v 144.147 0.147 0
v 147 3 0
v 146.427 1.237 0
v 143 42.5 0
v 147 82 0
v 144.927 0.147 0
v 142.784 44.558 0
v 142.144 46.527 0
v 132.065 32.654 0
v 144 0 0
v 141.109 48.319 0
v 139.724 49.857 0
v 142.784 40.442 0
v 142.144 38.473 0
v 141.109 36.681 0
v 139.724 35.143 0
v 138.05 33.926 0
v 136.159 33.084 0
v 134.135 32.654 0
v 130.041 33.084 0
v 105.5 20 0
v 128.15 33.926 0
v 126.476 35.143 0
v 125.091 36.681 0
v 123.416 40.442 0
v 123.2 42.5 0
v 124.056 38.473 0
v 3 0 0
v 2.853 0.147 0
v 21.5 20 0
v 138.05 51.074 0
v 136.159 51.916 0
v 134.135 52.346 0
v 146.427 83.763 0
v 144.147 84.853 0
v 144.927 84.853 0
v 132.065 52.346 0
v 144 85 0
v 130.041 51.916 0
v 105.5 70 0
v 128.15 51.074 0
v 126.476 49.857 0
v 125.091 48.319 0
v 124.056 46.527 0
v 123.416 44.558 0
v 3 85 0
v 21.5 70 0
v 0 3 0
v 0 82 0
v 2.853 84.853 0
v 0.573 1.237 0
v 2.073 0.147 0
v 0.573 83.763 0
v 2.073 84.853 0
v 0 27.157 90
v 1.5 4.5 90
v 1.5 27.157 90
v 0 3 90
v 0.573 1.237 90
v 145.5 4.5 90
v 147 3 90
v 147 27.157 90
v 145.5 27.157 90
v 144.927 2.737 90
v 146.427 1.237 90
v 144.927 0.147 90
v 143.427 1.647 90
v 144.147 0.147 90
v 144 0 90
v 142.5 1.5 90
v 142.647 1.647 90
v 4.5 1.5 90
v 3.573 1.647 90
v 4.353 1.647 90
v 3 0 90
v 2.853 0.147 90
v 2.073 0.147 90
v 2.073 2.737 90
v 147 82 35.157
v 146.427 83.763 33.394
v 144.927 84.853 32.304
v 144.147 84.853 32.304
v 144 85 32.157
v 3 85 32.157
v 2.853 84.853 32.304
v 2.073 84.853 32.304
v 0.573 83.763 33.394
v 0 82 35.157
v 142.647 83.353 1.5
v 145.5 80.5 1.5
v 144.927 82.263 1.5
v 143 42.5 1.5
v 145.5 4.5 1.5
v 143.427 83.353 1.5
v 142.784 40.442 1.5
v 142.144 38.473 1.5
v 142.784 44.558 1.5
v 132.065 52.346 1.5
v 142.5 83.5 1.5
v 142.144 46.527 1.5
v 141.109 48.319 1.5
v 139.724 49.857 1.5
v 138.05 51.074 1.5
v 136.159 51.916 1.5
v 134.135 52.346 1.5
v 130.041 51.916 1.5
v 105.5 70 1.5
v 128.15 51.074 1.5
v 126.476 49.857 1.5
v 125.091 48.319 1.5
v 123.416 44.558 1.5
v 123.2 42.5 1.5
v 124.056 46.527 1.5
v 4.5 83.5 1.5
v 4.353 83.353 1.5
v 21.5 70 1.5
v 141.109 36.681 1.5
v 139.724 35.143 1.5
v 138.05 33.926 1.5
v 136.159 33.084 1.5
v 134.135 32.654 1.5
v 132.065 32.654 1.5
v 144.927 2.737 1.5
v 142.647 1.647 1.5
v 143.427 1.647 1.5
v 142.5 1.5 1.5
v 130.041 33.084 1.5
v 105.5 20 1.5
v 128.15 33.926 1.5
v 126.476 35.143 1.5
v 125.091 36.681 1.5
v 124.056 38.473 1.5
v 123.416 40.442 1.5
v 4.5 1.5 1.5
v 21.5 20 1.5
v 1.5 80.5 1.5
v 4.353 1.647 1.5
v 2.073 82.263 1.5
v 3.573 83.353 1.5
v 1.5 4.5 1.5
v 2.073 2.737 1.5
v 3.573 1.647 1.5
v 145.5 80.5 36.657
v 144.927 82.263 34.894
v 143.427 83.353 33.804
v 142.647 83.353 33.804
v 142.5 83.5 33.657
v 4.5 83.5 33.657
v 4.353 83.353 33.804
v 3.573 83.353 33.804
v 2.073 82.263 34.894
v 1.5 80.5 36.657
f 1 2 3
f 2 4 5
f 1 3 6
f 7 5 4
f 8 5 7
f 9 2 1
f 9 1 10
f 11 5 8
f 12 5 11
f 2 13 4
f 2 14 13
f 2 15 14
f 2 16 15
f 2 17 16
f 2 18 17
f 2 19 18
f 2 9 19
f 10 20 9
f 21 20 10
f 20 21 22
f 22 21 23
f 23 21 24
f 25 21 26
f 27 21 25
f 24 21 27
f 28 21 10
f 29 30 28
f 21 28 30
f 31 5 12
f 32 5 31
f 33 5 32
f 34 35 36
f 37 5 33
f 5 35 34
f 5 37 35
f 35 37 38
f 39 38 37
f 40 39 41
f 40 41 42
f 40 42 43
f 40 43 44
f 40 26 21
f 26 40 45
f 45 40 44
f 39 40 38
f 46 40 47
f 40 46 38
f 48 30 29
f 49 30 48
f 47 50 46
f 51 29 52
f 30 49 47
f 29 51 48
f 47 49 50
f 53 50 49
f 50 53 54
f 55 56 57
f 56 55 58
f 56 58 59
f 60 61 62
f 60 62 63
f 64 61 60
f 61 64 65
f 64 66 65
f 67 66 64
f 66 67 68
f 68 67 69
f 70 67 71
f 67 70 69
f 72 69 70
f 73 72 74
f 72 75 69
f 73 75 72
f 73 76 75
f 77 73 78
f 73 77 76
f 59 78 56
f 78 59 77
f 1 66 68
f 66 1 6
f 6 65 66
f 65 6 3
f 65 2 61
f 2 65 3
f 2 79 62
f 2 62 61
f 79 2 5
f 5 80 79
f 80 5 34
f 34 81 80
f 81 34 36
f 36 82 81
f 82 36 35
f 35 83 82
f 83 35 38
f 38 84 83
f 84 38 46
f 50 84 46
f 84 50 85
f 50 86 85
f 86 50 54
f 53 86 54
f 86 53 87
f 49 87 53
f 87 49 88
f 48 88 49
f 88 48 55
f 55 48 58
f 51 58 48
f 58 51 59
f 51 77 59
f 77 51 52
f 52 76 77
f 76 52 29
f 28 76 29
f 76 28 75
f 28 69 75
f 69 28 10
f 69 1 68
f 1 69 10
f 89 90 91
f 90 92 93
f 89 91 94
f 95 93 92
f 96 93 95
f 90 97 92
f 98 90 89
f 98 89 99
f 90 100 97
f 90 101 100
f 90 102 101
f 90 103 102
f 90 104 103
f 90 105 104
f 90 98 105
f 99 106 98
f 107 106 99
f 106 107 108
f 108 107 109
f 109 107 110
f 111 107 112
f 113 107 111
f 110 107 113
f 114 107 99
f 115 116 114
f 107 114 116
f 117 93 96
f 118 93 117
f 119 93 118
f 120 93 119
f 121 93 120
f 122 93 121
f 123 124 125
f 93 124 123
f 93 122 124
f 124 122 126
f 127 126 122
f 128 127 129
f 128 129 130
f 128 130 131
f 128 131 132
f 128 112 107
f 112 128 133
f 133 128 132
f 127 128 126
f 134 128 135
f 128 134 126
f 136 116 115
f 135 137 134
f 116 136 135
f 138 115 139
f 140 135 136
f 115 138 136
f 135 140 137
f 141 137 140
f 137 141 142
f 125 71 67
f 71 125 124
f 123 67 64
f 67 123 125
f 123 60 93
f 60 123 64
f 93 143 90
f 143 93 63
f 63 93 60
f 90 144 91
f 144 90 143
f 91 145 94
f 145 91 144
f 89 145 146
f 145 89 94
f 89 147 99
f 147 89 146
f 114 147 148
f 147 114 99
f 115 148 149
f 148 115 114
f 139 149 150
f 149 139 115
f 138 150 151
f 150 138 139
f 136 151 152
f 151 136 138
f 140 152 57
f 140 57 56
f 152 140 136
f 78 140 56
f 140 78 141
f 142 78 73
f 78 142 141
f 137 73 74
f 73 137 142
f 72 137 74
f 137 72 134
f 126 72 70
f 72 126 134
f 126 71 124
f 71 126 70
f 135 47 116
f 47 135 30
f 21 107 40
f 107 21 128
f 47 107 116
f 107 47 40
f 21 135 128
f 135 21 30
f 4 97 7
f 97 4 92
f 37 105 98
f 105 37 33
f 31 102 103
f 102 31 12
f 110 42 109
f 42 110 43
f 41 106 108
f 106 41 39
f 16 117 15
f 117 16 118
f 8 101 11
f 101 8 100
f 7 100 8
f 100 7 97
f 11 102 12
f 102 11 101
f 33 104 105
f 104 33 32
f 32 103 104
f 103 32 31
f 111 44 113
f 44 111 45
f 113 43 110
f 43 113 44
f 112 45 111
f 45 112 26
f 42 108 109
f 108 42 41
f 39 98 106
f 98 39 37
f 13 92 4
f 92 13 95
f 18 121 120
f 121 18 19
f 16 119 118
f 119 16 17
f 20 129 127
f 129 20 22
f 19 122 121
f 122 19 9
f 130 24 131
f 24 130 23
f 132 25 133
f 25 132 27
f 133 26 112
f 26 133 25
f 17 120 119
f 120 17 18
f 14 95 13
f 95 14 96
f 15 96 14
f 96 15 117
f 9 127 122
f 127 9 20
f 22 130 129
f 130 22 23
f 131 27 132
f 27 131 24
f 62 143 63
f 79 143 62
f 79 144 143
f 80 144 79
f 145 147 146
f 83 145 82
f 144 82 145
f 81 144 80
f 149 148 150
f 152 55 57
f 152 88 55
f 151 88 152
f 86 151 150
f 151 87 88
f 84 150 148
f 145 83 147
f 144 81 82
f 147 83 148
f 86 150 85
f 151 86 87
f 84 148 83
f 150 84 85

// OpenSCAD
BaseWidth = 147;
BaseDepth = 85;
BaseHeight = 90;
CornerRadius = 3;
WallThickness = 1.5;
LCDScreenWidth=84;
LCDScreenHeight=50;
LCDScreenX=21.5;
LCDScreenY=20;
SmokeSensorRadius = 9.9;
SmokeSensorX=BaseWidth-WallThickness*2-1-SmokeSensorRadius;
SmokeSensorY=BaseDepth/2;
LEDRadius=1.6;
LEDX=SmokeSensorX;
LEDY=SmokeSensorY+35;

module RoundedRectangle($Width=BaseWidth, $Depth=BaseDepth, $Radius=CornerRadius) 
{
    polygon(points = [[$Radius, 0], [$Width-$Radius, 0],[$Width, $Radius], [$Width, $Depth-$Radius], [$Width-$Radius, $Depth], [$Radius, $Depth], [0, $Depth-$Radius], [0, $Radius]], paths=[[0,1,2,3,4,5,6,7]]);
        
    translate([$Radius,$Radius,0]){
        circle(r=$Radius);
    }        
    translate([$Width-$Radius,$Radius,0]){
        circle(r=$Radius);
    }
    
    translate([$Width-$Radius,$Depth-$Radius,0]){ 
        circle(r=$Radius);
    }
    
    translate([$Radius,$Depth-$Radius,0]){ 
        circle(r=$Radius);
    }
}


module base3D($Width=BaseWidth, $Depth=BaseDepth, $Height=BaseHeight, $Radius=CornerRadius, $Thickness=WallThickness)
{
    difference()
    {
        linear_extrude(height = $Height, center = false, convexity = 0, twist = 0)
        RoundedRectangle($Width, $Depth, $Radius);
        translate([$Thickness, $Thickness, $Thickness]) {
        linear_extrude(height = $Height, center = false, convexity = 0, twist = 0)
        RoundedRectangle($Width-$Thickness*2, $Depth-$Thickness*2, $Radius);
        }
    }
}

difference() {
    base3D(BaseWidth, BaseDepth, BaseHeight, CornerRadius, WallThickness);
    translate([LCDScreenX, LCDScreenY, 0]) {
        cube(size=[LCDScreenWidth, LCDScreenHeight, WallThickness], center=false);
    }
    translate([SmokeSensorX, SmokeSensorY, 0]){
        cylinder(h=WallThickness, r1=SmokeSensorRadius, r2=SmokeSensorRadius, center=false);
    }
//    translate([LEDX, LEDY, 0]){
//        cylinder(h=WallThickness, r1=LEDRadius, r2=LEDRadius, center=false);
//    }
    translate([0, 200+28, 142+30]){
        rotate([135, 0, 0]){
            cube(size=[200, 200, 200], center=false);
        }
    }
/*    
    translate([0, 0, 33]){
        rotate([45, 0, 0]){
            cube(size=[BaseWidth, BaseDepth/1.42, 200], center=false);
        }
    }
*/
}

/*
difference() {
    translate([0, 0, 33]){
        rotate([45, 0, 0]){
            cube(size=[BaseWidth, BaseDepth/1.42, 200], center=false);
        }
    }

    translate([0, -2, 35]){
        rotate([45, 0, 0]){
            cube(size=[BaseWidth+2, BaseDepth/1.42+2, 200+2], center=false);
        }
    }
}
*/
